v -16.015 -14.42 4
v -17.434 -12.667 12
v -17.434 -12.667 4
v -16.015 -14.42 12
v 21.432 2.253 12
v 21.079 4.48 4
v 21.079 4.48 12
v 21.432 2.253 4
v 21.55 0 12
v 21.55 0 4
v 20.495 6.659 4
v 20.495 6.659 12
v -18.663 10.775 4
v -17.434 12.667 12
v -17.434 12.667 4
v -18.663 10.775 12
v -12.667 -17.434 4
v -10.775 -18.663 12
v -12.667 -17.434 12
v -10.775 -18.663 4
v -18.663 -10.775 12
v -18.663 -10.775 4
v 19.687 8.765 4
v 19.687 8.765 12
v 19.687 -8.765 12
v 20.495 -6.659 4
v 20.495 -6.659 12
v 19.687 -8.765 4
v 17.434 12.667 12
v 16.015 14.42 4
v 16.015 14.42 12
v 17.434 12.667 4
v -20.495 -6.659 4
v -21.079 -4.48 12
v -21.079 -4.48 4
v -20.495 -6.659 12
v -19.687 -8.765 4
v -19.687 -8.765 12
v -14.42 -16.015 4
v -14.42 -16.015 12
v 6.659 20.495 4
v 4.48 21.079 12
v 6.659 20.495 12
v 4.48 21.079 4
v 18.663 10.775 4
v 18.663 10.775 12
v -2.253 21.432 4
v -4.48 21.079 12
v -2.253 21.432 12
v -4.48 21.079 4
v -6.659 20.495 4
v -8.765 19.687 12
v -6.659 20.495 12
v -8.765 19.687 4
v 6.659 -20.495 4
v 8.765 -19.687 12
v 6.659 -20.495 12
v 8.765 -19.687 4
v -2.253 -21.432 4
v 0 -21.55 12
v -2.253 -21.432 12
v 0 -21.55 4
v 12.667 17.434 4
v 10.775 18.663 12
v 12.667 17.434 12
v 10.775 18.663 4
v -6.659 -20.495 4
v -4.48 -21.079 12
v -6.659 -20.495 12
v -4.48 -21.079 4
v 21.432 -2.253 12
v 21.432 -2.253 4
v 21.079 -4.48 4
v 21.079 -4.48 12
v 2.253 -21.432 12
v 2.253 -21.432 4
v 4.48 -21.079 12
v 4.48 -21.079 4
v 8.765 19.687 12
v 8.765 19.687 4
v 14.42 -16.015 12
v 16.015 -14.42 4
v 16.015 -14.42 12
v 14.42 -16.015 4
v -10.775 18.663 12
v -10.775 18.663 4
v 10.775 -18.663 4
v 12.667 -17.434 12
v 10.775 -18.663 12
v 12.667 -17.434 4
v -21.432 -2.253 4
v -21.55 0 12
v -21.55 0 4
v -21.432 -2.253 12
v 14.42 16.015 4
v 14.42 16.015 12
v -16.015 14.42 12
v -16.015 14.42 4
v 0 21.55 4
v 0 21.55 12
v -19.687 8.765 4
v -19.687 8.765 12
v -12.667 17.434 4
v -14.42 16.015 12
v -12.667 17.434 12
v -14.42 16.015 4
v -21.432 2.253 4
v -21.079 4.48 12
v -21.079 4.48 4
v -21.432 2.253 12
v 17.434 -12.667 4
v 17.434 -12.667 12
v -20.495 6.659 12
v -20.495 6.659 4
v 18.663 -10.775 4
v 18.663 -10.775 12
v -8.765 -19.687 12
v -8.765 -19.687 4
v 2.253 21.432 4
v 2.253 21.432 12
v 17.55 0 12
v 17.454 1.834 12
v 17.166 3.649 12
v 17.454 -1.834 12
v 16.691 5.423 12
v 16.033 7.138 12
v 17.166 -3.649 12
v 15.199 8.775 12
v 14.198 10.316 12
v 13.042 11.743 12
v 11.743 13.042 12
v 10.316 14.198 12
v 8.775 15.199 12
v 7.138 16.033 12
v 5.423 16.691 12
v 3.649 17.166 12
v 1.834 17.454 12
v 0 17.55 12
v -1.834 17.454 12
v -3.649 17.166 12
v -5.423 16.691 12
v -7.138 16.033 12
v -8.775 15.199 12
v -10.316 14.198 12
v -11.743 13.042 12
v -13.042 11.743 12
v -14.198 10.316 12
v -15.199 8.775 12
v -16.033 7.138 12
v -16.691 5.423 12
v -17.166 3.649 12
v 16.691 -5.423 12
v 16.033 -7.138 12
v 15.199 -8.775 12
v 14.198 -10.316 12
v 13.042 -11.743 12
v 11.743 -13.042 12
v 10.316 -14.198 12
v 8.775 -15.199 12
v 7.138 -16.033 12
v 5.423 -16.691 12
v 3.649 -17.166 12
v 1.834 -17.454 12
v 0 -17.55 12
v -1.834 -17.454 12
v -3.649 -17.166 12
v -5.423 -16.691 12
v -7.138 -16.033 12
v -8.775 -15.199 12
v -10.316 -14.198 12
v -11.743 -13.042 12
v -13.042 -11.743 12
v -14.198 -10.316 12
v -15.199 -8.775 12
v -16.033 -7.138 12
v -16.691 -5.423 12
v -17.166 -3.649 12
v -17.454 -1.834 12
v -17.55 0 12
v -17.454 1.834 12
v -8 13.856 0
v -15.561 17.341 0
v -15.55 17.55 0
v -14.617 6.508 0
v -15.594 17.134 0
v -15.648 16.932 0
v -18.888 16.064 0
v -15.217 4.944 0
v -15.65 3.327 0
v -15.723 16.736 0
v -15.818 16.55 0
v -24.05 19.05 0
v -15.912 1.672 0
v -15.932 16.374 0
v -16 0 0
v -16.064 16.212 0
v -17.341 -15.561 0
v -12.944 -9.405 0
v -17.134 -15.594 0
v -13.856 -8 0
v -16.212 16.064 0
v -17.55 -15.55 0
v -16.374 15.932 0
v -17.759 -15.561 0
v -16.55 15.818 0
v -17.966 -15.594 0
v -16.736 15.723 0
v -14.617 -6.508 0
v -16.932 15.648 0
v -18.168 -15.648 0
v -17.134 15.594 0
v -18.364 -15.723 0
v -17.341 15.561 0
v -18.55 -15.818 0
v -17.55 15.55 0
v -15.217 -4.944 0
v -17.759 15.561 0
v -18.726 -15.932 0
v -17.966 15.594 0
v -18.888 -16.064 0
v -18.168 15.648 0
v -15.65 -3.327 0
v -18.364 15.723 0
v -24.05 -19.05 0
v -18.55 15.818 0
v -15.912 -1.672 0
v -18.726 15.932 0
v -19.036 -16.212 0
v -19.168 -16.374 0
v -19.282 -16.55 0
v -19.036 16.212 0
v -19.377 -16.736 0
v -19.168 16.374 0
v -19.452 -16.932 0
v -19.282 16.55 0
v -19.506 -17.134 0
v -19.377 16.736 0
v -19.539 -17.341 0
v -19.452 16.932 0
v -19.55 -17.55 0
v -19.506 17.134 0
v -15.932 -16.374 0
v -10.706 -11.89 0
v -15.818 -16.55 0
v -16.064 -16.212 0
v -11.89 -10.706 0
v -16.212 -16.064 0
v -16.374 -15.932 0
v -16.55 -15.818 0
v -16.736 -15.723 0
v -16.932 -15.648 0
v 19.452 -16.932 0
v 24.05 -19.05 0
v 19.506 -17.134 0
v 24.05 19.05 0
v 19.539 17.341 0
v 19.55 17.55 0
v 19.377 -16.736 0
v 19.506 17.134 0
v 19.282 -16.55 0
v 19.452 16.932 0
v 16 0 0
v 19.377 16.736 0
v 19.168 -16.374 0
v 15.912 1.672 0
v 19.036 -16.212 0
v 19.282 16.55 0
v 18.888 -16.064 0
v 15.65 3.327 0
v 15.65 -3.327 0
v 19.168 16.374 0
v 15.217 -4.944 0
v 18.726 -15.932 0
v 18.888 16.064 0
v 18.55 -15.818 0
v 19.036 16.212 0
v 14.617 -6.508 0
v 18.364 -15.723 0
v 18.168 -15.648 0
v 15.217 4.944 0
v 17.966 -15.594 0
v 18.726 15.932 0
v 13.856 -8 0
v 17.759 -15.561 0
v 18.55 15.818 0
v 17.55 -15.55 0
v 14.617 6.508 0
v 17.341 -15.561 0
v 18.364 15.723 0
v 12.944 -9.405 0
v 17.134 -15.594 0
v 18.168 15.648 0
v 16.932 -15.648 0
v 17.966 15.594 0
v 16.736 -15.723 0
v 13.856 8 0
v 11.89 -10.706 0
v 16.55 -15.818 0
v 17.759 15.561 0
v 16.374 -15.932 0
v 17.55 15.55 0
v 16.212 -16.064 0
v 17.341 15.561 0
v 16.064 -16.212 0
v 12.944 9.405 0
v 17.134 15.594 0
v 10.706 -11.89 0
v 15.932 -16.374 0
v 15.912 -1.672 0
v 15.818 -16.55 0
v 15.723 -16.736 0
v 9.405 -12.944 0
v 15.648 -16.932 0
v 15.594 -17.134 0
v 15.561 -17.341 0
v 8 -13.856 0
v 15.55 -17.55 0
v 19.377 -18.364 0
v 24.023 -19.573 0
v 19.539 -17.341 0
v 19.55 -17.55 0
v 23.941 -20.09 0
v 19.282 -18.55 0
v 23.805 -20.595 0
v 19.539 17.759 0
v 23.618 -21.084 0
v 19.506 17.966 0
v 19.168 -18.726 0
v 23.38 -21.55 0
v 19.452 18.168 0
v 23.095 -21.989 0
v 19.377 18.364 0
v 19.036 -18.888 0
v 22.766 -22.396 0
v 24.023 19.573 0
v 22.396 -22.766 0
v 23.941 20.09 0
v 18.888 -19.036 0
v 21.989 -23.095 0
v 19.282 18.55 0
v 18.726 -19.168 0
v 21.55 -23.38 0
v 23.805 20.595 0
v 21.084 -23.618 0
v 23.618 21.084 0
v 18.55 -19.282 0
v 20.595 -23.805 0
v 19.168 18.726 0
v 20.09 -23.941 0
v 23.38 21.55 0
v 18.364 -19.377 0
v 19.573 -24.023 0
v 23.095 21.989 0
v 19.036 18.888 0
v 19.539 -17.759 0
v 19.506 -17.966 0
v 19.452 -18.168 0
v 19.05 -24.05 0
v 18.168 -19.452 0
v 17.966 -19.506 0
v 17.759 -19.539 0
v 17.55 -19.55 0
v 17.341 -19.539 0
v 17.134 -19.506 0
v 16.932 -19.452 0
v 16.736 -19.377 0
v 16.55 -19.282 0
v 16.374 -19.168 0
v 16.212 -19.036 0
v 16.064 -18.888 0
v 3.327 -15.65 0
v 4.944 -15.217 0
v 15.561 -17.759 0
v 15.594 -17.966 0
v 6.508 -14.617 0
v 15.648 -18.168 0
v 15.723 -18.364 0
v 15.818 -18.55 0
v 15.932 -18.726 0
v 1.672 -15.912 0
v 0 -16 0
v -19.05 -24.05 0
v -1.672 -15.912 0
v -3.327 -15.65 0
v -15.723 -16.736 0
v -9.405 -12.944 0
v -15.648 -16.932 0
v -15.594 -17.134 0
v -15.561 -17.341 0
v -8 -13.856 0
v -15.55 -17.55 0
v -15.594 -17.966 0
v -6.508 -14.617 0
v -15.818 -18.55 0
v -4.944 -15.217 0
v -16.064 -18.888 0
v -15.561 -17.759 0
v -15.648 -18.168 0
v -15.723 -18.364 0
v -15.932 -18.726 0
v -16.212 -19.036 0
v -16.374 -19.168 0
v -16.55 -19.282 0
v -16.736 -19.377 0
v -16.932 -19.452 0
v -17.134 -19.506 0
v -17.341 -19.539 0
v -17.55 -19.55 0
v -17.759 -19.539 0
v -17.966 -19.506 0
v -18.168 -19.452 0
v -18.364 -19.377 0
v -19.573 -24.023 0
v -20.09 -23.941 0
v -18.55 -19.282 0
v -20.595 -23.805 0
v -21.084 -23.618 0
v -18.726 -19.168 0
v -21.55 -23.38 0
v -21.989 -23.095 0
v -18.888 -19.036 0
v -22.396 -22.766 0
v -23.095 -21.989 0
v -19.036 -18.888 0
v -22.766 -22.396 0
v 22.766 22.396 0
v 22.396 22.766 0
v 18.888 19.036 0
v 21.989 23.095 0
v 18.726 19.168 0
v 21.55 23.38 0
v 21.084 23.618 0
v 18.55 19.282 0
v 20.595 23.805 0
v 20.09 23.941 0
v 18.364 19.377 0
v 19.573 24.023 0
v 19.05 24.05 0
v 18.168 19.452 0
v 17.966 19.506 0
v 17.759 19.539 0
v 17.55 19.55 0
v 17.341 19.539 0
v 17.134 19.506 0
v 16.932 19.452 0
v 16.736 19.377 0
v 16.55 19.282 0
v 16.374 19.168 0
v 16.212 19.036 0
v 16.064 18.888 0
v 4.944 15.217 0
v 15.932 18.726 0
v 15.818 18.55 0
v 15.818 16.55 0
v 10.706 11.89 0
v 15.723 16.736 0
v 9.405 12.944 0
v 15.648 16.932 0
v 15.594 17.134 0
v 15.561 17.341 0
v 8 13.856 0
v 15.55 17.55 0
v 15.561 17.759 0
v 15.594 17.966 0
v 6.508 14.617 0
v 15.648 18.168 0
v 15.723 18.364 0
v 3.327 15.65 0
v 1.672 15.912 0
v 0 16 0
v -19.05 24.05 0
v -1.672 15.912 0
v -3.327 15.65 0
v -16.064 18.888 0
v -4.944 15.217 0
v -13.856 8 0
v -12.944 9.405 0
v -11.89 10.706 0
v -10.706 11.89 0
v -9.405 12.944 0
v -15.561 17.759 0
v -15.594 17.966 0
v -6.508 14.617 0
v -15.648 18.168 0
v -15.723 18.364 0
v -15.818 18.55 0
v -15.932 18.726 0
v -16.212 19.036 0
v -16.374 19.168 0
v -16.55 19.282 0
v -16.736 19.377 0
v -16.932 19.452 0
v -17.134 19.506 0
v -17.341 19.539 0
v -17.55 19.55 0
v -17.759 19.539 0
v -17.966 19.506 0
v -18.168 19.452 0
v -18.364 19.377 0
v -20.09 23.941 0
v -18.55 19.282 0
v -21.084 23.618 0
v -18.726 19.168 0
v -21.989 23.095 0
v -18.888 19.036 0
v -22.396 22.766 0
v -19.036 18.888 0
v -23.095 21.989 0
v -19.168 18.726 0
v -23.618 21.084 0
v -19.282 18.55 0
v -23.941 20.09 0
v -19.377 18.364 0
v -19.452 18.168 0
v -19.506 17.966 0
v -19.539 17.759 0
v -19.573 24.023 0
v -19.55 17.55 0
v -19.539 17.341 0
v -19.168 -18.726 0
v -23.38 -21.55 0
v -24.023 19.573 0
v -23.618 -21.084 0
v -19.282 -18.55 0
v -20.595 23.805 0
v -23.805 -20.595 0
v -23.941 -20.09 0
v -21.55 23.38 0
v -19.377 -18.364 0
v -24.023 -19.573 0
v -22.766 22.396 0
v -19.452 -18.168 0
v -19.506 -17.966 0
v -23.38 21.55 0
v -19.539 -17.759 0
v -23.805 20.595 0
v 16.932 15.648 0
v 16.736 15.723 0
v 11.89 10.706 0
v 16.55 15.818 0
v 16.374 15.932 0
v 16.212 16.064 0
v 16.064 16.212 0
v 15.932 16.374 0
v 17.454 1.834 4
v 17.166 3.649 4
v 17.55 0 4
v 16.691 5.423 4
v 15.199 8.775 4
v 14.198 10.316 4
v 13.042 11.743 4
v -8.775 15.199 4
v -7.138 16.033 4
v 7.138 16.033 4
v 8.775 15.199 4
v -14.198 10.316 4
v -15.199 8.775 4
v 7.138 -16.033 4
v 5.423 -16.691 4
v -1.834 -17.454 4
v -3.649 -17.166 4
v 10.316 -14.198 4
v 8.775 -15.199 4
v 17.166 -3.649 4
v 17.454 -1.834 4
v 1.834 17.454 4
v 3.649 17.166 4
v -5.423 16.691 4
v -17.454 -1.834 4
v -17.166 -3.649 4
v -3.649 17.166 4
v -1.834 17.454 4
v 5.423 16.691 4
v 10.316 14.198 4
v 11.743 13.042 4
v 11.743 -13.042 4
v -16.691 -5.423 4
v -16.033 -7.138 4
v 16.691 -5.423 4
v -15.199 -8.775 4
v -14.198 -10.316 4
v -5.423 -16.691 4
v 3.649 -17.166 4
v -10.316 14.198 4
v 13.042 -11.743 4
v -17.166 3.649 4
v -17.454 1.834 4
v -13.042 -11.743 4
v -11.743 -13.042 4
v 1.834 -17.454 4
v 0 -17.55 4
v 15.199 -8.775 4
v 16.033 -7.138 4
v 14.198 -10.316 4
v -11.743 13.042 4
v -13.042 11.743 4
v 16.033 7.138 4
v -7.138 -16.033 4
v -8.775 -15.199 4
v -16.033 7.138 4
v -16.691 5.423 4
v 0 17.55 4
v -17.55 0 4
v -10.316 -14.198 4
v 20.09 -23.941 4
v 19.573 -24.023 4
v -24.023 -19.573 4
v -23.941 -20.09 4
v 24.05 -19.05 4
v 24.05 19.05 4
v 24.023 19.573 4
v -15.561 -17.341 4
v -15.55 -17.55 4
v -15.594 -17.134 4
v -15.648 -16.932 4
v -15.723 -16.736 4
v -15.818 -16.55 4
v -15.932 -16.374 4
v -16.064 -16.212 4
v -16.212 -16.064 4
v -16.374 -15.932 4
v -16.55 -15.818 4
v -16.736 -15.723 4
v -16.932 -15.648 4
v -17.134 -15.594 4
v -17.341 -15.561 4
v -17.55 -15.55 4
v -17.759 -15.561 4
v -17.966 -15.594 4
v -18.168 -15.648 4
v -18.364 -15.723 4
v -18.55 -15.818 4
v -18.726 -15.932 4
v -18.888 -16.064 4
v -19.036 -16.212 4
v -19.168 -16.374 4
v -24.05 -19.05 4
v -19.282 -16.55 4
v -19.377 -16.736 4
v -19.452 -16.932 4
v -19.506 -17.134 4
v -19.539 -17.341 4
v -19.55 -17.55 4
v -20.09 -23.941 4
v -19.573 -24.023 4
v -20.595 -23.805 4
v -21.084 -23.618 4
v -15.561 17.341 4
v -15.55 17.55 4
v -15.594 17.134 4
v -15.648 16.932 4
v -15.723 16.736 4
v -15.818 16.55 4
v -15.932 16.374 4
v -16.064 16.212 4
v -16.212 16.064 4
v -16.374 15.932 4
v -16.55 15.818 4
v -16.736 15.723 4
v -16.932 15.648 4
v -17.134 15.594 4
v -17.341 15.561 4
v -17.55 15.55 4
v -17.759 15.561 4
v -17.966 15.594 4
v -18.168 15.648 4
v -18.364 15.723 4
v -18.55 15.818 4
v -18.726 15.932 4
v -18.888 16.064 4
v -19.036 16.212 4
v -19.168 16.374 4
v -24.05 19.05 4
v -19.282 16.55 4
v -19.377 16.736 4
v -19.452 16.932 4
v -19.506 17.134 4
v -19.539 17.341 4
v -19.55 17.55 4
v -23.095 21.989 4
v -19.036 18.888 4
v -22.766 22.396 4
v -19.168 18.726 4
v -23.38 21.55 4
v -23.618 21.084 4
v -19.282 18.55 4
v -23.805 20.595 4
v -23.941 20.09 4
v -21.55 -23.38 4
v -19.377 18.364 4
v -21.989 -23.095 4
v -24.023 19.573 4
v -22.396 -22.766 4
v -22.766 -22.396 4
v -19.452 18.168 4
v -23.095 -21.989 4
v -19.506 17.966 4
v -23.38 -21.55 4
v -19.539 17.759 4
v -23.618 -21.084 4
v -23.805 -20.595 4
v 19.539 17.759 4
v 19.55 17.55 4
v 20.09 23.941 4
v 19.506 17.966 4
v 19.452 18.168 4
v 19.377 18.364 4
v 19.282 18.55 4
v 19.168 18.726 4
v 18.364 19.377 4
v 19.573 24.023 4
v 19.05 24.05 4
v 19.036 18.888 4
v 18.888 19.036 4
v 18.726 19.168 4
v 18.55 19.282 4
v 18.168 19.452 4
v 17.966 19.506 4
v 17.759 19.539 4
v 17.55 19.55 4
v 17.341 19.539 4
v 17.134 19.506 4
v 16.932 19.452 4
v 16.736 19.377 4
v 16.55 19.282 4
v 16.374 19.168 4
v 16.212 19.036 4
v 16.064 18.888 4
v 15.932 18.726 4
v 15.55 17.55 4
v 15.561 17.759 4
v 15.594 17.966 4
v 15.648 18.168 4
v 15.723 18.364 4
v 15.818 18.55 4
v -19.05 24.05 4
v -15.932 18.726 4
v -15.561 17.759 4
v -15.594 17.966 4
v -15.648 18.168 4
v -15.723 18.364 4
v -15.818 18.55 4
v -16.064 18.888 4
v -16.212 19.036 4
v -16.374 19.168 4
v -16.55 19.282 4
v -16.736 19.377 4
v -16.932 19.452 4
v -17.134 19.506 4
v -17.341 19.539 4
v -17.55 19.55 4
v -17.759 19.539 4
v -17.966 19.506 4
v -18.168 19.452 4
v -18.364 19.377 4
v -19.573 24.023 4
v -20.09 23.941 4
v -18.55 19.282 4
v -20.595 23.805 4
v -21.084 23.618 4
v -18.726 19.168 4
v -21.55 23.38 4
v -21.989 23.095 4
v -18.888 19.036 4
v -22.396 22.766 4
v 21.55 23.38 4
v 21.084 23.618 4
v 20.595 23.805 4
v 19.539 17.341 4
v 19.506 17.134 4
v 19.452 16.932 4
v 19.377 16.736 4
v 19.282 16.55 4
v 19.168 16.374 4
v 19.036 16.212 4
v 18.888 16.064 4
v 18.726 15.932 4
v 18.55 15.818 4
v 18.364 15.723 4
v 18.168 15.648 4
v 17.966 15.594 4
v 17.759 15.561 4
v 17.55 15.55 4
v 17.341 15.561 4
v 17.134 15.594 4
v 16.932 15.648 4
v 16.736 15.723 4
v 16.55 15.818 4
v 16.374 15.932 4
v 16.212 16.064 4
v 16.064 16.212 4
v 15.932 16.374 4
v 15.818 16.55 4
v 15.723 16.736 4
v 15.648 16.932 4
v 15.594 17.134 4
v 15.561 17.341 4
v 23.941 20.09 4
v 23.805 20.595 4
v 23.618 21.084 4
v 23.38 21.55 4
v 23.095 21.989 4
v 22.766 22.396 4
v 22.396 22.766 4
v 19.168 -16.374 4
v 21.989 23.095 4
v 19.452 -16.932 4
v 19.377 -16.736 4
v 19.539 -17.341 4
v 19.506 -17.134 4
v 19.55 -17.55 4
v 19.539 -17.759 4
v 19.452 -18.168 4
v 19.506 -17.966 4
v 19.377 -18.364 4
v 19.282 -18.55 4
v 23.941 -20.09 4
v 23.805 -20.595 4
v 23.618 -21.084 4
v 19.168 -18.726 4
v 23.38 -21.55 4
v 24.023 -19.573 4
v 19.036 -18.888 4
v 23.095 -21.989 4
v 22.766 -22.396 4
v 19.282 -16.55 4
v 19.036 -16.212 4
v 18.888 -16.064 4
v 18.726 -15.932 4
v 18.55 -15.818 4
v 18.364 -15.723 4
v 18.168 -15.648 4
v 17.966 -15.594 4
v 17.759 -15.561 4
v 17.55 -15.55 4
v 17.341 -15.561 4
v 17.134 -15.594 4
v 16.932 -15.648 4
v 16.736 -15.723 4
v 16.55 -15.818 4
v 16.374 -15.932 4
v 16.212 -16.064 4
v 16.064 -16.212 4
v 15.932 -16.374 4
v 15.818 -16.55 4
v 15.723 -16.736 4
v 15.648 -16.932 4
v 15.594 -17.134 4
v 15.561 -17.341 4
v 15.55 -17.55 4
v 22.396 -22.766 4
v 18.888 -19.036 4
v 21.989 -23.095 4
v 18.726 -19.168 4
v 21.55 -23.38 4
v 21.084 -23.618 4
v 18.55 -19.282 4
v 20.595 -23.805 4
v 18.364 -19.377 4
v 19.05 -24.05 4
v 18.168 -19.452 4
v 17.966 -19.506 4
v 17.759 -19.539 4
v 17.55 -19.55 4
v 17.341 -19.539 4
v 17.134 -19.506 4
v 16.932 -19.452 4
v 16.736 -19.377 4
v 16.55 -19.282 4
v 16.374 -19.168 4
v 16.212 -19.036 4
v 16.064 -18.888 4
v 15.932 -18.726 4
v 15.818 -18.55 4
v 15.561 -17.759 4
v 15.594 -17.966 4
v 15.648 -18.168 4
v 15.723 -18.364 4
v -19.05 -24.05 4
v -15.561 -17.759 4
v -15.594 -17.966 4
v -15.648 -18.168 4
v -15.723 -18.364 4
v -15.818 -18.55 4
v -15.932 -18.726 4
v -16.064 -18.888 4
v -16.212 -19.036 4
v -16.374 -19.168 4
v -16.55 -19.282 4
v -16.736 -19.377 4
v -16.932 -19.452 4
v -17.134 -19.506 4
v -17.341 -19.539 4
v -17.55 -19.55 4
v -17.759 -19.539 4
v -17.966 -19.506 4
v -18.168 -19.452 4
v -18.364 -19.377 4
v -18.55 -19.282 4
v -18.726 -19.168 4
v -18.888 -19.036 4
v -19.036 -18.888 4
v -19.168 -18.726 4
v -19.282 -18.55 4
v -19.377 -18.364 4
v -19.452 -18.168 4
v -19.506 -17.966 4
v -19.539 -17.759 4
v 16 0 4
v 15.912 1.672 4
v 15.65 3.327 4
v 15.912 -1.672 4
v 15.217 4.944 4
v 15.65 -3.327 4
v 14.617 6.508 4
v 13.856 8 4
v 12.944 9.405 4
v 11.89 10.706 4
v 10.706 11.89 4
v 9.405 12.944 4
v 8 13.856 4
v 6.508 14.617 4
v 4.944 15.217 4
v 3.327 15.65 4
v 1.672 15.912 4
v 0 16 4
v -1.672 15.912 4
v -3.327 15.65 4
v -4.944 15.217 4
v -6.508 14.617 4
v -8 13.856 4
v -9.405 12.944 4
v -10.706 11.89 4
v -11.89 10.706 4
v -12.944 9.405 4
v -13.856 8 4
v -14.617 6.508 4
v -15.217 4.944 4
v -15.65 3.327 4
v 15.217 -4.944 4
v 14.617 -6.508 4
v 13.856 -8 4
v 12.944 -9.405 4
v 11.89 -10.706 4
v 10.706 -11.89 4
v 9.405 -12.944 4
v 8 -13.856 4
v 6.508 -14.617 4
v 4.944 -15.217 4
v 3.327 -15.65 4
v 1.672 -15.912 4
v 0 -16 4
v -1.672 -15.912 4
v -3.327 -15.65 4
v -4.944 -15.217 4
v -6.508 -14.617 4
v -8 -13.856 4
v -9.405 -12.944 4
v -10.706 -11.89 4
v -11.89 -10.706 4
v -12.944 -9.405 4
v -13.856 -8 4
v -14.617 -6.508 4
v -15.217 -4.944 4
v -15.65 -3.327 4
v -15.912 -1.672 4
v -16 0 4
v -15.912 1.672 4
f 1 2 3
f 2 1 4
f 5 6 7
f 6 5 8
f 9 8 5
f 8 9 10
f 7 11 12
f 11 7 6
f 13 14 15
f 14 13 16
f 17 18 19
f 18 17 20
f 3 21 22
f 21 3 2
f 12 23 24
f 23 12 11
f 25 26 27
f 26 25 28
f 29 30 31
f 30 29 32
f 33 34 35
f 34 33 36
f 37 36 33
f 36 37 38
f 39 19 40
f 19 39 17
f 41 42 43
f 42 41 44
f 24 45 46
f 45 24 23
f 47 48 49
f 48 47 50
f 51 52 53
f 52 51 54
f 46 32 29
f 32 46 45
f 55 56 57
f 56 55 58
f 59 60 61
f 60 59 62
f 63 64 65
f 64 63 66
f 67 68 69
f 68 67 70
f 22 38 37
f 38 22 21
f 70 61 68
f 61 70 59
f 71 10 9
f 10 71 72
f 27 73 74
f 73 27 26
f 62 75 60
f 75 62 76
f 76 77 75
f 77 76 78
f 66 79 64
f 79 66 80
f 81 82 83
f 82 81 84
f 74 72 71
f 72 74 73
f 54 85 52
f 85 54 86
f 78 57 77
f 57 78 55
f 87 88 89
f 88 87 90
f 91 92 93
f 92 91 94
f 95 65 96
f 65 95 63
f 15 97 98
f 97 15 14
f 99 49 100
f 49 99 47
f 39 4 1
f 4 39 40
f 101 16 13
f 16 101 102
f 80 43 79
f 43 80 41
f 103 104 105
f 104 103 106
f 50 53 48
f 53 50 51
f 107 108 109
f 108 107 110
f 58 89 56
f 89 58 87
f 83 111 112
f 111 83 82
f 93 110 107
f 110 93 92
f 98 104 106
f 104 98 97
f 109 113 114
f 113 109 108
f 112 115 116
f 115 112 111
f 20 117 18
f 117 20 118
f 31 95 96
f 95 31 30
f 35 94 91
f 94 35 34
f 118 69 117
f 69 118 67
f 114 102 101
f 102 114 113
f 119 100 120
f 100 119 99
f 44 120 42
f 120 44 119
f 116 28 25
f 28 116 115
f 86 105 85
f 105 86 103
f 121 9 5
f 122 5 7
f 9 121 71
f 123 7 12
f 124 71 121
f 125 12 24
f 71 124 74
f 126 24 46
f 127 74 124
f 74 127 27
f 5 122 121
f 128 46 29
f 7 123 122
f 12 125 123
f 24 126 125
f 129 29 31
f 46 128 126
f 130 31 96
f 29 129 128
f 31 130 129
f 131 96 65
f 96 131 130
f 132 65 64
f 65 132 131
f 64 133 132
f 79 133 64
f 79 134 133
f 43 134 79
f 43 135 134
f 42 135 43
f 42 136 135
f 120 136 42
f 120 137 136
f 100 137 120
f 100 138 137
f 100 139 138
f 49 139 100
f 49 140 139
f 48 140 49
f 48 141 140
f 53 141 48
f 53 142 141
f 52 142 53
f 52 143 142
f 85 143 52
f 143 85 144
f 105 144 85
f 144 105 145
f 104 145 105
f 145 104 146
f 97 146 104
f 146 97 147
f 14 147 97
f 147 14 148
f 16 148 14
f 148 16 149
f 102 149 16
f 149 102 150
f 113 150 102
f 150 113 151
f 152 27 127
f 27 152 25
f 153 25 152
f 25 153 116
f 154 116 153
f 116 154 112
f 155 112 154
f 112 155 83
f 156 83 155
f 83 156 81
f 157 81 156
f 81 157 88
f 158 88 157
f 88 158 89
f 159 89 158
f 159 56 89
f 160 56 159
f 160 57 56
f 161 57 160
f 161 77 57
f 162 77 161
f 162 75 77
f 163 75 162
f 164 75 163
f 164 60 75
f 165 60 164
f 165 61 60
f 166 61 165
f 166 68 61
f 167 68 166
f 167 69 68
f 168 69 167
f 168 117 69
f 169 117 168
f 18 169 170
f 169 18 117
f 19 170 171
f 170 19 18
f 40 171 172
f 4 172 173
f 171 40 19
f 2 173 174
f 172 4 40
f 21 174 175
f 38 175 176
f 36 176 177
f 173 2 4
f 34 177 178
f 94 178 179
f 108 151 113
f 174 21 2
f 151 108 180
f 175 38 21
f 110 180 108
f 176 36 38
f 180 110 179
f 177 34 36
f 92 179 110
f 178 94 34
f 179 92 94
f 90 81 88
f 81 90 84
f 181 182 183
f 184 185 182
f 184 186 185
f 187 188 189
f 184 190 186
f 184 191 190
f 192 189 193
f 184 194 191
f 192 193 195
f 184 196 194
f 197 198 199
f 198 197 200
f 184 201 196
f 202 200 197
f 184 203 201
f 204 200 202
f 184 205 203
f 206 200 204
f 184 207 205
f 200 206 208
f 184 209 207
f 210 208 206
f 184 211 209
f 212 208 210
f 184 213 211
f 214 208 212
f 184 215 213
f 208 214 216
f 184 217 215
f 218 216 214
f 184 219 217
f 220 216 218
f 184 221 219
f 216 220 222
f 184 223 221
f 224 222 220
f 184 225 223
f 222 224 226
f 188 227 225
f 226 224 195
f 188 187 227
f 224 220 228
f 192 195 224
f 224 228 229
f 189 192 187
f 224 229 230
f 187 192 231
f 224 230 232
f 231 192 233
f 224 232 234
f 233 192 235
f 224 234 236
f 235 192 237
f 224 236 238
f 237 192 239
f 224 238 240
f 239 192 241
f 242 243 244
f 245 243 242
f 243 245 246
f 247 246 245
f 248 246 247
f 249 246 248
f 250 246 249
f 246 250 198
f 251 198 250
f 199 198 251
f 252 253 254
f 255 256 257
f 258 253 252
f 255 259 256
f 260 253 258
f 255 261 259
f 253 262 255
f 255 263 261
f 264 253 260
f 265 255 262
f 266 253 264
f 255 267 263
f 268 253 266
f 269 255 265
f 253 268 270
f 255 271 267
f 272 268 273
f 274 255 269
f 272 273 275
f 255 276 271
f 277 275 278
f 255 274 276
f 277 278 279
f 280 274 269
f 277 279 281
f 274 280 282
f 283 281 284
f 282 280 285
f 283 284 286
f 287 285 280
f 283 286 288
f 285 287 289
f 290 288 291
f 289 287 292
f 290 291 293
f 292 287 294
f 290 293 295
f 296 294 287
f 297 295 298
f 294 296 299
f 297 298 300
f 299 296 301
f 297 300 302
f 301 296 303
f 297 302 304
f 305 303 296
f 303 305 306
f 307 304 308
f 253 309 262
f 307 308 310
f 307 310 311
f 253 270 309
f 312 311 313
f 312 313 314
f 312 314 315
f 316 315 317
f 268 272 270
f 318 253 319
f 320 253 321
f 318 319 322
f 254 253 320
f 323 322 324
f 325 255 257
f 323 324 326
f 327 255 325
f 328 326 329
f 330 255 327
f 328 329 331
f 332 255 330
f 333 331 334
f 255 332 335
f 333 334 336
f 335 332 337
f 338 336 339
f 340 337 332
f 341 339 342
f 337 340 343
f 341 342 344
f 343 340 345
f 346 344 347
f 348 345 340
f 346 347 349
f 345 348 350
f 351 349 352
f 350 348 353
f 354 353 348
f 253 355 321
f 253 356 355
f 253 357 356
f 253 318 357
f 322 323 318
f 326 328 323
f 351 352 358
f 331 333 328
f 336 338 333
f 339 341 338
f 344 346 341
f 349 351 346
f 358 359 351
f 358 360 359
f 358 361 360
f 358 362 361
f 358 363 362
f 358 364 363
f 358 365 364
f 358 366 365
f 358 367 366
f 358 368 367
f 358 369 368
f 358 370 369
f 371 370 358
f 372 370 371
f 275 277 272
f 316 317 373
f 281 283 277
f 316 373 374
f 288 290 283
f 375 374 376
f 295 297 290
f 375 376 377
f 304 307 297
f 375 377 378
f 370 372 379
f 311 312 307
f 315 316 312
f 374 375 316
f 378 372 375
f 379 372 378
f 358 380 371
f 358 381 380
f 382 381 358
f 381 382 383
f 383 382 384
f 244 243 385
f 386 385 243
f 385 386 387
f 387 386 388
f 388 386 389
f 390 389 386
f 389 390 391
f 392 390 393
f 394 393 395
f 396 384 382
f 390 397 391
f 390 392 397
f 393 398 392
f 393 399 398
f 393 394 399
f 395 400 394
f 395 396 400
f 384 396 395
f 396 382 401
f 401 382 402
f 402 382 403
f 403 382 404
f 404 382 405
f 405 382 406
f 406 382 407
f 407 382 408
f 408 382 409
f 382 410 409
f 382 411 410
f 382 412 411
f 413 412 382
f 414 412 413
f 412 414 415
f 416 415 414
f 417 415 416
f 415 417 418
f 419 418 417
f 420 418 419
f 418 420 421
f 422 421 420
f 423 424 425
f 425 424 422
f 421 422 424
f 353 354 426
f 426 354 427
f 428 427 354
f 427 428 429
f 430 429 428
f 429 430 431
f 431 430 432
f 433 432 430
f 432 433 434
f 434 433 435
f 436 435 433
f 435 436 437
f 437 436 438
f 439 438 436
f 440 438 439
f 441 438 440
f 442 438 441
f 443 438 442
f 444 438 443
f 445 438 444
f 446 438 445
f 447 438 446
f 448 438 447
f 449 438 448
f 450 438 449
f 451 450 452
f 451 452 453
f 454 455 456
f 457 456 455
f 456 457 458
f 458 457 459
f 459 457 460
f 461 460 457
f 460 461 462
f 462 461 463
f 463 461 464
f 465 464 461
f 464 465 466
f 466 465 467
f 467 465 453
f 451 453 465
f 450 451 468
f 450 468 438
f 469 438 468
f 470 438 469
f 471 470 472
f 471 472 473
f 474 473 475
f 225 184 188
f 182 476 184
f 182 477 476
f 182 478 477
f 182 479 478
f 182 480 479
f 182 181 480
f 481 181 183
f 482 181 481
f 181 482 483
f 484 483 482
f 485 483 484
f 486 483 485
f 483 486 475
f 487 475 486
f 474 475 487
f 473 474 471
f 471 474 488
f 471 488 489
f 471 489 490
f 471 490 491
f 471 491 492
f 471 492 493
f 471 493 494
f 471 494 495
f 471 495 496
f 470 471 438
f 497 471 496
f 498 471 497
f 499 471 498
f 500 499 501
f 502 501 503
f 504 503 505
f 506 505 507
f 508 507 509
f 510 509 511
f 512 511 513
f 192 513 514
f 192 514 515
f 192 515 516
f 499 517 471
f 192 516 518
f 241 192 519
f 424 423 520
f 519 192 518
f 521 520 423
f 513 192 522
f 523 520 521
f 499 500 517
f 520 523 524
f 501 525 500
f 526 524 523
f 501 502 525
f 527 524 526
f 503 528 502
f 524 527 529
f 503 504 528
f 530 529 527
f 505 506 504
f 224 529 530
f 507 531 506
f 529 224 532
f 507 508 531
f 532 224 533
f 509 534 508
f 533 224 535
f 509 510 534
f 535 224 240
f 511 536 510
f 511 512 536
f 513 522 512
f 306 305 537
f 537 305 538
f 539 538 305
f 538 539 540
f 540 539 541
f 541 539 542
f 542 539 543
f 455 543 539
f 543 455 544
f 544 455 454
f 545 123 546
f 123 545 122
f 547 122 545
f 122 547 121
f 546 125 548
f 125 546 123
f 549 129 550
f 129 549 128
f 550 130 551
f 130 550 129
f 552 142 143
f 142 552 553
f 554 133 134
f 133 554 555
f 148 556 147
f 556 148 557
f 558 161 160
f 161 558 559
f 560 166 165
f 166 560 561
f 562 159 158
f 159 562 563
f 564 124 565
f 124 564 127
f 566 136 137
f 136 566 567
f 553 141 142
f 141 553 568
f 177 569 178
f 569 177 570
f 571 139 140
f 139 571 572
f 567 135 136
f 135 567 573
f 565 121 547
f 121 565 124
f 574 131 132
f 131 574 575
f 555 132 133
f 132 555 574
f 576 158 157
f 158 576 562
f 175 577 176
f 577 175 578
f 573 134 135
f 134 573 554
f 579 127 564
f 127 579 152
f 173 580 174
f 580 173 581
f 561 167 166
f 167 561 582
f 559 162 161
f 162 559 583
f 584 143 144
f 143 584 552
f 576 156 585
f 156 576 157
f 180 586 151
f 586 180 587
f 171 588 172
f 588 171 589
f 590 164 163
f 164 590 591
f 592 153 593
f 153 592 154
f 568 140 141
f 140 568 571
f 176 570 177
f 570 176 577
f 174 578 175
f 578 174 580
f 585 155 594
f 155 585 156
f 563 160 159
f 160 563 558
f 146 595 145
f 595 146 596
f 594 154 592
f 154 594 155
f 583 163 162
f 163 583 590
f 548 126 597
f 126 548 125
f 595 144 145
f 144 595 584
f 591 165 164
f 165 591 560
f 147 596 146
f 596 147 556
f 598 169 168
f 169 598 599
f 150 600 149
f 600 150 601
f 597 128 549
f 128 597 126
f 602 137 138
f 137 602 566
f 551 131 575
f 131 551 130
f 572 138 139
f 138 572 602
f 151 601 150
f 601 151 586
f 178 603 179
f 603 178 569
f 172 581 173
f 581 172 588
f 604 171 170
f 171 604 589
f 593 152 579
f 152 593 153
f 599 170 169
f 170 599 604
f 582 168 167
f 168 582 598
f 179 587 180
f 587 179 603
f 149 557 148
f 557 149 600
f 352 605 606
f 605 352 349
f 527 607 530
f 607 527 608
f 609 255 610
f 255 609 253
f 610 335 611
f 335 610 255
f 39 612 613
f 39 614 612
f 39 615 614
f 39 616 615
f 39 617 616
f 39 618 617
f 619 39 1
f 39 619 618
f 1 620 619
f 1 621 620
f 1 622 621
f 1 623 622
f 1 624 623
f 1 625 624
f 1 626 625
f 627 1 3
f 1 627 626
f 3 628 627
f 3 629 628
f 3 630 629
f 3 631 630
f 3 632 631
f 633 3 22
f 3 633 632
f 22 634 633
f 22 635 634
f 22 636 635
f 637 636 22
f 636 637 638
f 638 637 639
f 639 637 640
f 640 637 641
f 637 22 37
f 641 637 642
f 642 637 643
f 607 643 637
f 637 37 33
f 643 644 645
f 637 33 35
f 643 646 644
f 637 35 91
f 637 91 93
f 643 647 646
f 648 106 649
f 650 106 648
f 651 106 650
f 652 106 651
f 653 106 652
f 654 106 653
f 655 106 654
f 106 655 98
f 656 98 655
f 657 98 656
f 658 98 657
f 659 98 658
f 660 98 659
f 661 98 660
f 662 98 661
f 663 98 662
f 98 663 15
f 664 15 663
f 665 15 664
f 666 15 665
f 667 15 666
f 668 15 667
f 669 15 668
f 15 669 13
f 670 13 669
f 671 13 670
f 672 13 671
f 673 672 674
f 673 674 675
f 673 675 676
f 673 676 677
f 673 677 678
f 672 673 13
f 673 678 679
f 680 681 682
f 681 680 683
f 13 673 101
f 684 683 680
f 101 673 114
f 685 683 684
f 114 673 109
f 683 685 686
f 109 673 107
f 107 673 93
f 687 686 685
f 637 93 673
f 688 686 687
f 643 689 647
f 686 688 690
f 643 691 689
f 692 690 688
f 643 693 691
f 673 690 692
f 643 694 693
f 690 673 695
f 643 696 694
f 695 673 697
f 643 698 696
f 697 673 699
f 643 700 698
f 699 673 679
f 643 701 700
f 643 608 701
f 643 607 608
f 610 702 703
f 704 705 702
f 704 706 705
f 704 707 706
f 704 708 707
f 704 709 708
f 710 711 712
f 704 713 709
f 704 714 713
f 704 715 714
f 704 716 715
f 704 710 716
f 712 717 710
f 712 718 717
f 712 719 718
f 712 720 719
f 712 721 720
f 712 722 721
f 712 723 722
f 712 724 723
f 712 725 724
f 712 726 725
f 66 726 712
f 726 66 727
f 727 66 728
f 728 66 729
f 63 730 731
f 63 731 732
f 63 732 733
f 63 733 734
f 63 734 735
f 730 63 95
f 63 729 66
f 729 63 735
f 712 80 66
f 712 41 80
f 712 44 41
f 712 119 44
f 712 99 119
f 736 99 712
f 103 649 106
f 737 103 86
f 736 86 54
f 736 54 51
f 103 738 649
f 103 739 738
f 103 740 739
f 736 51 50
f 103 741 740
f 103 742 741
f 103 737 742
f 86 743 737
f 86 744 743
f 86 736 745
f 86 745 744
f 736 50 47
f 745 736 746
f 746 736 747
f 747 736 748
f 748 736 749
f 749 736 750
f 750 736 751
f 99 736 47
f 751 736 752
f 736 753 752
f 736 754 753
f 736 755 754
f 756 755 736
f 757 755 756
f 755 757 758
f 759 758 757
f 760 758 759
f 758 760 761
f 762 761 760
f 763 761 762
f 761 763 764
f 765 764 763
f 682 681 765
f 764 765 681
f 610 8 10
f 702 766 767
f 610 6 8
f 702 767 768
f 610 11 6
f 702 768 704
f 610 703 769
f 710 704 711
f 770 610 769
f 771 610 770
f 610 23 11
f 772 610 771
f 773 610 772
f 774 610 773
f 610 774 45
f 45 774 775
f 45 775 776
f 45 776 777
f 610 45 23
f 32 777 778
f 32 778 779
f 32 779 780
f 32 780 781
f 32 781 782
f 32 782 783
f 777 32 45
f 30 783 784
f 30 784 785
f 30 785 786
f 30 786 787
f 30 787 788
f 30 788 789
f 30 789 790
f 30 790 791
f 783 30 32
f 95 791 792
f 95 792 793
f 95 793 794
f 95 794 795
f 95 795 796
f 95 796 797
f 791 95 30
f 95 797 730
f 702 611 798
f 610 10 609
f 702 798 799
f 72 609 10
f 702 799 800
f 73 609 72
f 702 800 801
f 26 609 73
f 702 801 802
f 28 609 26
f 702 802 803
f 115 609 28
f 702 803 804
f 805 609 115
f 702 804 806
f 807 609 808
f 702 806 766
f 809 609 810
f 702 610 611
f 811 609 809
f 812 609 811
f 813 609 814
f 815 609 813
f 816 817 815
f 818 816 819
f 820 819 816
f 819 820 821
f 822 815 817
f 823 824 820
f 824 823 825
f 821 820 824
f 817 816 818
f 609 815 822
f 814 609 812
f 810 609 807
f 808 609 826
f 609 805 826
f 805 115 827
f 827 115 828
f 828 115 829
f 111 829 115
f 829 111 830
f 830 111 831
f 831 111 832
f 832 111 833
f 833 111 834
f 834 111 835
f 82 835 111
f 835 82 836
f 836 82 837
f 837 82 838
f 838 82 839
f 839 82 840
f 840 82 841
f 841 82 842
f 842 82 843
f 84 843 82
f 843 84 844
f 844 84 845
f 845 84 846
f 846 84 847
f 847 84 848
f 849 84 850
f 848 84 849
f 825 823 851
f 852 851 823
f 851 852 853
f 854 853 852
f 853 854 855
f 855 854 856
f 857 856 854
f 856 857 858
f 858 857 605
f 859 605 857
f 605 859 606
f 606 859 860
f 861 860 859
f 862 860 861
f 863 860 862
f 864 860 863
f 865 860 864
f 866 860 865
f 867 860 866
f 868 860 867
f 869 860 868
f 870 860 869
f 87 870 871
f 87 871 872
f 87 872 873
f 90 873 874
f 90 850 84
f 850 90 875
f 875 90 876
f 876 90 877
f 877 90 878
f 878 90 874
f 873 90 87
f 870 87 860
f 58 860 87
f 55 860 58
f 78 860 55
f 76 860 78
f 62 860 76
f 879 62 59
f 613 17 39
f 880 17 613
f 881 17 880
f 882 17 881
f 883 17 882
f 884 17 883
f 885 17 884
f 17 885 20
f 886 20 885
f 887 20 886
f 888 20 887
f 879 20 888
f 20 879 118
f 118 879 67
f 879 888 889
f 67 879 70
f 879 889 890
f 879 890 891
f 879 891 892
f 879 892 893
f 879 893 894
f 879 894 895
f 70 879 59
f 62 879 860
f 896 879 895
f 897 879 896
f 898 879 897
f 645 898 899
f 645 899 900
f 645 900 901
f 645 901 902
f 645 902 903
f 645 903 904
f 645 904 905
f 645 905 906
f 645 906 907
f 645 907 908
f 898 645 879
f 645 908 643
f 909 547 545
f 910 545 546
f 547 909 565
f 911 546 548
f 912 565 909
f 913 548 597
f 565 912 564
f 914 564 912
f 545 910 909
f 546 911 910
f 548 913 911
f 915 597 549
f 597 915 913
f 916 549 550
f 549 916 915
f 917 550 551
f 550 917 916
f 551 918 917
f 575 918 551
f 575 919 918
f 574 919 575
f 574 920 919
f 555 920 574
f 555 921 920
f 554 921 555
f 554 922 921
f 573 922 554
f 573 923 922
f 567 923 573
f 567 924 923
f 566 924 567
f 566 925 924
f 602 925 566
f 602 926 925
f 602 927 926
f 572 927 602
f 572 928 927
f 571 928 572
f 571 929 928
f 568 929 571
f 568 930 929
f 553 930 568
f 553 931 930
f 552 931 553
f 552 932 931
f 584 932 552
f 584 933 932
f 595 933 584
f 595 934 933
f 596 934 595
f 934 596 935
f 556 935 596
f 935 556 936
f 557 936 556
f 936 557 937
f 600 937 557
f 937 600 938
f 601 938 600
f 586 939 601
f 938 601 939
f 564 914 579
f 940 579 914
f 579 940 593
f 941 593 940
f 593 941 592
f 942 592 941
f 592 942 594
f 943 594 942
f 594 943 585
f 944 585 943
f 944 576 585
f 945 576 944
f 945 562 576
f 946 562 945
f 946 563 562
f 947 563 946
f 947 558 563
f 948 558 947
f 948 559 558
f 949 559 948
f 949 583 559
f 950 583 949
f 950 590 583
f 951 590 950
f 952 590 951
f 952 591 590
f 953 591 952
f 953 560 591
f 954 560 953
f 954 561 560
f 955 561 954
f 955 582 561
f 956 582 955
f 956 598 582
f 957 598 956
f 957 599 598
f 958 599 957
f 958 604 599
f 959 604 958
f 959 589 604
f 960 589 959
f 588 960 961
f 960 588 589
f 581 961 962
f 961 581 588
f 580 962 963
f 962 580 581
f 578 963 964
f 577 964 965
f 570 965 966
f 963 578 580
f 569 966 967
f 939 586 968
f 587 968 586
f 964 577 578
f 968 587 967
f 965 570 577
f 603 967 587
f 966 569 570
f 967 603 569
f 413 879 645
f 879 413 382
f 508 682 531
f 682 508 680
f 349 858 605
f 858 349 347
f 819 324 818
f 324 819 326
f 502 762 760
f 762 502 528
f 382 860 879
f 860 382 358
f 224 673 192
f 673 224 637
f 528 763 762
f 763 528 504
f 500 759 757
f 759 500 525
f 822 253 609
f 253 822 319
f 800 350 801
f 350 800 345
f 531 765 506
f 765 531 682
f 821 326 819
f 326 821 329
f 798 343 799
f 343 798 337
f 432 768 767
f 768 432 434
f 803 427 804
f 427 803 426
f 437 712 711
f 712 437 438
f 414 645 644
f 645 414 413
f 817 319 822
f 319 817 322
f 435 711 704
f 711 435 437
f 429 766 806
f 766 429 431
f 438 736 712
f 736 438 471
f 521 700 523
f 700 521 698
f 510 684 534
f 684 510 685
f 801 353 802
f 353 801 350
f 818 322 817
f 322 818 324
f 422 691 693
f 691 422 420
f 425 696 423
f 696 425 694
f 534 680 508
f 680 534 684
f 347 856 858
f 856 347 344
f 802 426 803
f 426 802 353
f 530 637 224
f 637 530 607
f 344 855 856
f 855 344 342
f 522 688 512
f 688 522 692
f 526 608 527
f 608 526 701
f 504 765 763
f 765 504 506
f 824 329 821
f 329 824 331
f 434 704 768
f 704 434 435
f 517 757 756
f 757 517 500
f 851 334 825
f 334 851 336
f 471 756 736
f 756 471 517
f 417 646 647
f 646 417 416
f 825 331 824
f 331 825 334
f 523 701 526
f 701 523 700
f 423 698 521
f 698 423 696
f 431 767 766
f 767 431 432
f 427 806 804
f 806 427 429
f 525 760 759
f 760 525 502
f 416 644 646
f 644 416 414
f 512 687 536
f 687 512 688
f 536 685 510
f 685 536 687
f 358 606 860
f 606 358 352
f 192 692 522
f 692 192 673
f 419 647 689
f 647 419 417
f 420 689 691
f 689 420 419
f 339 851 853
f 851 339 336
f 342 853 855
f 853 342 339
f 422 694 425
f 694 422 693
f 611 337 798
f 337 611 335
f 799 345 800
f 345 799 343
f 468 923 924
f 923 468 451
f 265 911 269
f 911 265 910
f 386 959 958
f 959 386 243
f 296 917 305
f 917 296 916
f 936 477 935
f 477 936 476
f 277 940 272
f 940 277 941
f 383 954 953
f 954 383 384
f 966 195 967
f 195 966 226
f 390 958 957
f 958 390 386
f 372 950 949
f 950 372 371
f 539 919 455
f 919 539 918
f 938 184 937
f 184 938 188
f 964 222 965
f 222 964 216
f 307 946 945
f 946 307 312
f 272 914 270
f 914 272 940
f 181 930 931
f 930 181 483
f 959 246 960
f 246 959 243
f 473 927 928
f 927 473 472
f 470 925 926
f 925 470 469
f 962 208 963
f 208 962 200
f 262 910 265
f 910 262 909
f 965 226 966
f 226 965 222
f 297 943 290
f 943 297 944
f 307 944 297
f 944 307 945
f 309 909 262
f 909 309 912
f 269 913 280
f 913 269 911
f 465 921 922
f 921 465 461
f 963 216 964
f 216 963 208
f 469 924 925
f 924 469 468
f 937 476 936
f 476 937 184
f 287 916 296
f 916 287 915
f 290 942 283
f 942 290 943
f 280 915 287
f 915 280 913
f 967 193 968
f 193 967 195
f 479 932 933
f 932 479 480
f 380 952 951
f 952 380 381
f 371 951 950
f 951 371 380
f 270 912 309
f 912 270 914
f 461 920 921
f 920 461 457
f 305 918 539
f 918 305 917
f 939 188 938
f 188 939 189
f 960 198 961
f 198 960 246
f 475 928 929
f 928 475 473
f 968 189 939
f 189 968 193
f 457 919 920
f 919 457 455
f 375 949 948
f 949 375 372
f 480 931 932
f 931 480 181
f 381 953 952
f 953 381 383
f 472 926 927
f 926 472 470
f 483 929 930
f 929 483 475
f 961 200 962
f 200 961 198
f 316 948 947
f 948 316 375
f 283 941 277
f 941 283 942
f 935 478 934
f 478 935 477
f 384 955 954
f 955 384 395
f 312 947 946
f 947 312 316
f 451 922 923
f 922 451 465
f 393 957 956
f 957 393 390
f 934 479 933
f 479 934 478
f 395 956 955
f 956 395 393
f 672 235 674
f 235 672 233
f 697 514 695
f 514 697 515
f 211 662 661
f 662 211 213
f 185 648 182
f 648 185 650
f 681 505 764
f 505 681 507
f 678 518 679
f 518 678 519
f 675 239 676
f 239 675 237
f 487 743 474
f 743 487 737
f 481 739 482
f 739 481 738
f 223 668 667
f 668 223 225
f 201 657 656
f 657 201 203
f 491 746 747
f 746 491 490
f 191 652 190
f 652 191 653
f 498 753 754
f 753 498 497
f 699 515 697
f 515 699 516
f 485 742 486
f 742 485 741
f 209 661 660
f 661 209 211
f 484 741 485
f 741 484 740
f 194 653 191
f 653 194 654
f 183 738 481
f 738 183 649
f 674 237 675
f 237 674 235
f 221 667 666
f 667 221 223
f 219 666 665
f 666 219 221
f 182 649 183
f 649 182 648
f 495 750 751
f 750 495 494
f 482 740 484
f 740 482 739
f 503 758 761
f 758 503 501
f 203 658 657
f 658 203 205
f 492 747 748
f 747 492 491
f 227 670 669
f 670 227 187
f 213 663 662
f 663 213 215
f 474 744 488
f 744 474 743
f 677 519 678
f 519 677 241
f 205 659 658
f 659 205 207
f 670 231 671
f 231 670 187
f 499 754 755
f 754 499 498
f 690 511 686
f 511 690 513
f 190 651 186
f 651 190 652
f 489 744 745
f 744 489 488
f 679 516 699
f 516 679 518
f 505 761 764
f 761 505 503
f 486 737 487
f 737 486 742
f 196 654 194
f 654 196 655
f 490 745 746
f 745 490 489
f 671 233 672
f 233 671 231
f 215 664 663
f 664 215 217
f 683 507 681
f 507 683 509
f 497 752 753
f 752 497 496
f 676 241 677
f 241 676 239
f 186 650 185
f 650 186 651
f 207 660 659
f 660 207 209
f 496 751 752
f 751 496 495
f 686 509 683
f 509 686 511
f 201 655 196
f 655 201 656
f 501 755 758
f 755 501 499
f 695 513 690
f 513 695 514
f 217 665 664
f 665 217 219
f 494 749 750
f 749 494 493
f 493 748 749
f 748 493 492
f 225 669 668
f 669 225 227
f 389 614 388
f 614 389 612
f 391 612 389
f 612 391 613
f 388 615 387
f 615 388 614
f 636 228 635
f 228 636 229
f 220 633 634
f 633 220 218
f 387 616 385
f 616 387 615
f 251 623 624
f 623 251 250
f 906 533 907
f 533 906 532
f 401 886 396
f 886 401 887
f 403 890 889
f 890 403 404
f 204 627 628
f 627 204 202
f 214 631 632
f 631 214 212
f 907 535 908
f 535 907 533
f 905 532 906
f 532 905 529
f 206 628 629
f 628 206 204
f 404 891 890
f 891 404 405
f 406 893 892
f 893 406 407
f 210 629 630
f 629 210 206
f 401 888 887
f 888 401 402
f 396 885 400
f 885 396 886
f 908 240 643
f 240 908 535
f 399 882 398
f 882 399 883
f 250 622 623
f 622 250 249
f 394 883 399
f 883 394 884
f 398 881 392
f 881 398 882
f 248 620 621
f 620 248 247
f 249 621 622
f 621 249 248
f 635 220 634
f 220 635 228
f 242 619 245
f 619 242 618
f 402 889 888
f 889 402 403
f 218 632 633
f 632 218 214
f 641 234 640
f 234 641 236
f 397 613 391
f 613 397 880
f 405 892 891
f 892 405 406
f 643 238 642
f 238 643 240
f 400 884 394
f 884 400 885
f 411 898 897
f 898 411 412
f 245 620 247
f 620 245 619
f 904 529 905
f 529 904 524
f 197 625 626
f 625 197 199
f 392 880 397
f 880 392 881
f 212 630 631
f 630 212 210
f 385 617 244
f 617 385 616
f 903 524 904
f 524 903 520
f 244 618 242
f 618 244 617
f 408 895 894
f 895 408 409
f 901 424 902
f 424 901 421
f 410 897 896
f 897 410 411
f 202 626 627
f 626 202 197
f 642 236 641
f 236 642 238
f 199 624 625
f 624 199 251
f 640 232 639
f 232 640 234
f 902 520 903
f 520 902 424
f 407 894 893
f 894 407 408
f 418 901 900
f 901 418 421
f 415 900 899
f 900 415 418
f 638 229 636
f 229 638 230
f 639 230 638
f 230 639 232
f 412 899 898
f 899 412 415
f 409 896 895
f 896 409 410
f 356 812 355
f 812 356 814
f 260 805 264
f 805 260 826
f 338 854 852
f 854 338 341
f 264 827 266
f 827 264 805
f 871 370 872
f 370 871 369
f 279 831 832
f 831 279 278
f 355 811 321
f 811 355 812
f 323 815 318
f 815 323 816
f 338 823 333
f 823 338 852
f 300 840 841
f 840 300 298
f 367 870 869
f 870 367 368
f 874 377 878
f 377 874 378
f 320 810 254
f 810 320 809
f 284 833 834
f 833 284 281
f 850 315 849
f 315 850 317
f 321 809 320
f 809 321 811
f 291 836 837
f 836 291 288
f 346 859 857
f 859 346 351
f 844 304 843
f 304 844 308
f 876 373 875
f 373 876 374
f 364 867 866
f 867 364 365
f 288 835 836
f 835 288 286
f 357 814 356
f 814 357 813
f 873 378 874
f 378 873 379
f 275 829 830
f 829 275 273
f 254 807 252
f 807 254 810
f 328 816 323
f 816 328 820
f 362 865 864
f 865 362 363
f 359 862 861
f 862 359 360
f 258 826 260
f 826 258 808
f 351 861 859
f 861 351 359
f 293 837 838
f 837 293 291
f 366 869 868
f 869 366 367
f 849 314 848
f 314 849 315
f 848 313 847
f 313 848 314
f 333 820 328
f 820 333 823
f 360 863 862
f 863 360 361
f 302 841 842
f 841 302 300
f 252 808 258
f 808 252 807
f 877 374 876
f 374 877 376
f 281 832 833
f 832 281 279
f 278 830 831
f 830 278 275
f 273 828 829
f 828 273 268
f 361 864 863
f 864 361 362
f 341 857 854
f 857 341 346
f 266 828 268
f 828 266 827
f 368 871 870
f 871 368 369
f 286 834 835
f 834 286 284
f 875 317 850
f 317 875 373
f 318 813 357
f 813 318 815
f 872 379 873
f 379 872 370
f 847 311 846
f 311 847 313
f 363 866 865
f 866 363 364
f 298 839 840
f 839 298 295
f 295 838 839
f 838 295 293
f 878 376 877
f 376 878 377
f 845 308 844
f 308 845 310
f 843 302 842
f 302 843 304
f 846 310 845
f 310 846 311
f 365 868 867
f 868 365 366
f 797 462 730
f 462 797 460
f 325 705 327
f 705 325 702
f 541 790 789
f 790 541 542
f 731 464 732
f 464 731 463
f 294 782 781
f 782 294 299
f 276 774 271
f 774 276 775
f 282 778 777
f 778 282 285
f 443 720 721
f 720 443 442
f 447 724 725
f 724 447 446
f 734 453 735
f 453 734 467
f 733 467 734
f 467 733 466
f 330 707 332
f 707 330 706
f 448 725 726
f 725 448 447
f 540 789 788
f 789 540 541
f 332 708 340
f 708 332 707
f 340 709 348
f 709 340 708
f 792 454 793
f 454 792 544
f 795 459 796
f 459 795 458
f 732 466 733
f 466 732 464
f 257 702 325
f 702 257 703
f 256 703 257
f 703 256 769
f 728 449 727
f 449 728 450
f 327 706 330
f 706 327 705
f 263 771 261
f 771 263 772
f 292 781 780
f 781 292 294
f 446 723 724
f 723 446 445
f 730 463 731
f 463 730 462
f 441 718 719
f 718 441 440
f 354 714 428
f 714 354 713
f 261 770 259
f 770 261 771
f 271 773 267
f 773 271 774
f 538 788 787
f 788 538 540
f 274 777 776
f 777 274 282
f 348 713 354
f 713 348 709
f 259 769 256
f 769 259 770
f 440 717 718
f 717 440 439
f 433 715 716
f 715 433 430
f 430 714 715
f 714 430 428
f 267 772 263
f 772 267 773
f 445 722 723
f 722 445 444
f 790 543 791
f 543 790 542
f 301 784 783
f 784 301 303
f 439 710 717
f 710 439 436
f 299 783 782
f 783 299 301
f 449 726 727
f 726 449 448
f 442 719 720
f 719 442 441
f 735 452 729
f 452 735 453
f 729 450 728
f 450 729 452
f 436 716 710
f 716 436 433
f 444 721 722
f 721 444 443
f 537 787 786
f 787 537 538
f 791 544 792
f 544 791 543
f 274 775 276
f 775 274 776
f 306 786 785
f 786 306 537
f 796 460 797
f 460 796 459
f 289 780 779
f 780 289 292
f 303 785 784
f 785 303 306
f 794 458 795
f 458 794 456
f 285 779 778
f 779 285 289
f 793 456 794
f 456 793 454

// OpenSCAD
/* Copyright (C) Peter Ivanov <ivanovp@gmail.com>, 2015 */
/* License: Creative Commons - Attribution - Non-commercial (CC BY-NC) /

// 16005 bearing, h = 8 mm, d = 25 mm, D = 47 mm
// 16003 bearing, h = 8 mm, d = 17 mm, D = 35 mm
/* [Global] */
inner_diameter = 35.1;
inner_diameter2 = 32;
wall_thickness = 4;
outer_diameter = inner_diameter + wall_thickness * 2;
base_width = outer_diameter + 5;
base_height = wall_thickness;
height = base_height + 8;
drill_diameter = 4;
drill_distance = inner_diameter;

$fn = 60;

union()
{
    difference()
    {
        union()
        {
            difference()
            {
                cylinder(d=outer_diameter, h=height);
                cylinder(d=inner_diameter, h=height);
            }
            translate([-base_width / 2, -base_width / 2, 0])
            {
                rounded_cube(base_width, base_width, base_height, 5);
            }
        }
        cylinder(d=inner_diameter2, h=height);
        translate([-drill_distance / 2, drill_distance / 2, 0]) 
        {
            cylinder(d=drill_diameter, h=base_height);
        }
        translate([-drill_distance / 2, -drill_distance / 2, 0]) 
        {
            cylinder(d=drill_diameter, h=base_height);
        }
        translate([drill_distance / 2, -drill_distance / 2, 0]) 
        {
            cylinder(d=drill_diameter, h=base_height);
        }
        translate([drill_distance / 2, drill_distance / 2, 0]) 
        {
            cylinder(d=drill_diameter, h=base_height);
        }
    }
}

module rounded_cube(w, l, h, r)
{
    hull()
    {
     translate([0 + r, 0 + r, 0]) cylinder(r=r, h=h);
     translate([w - r, 0 + r, 0]) cylinder(r=r, h=h);
     translate([w - r, l - r, 0]) cylinder(r=r, h=h);
     translate([0 + r, l - r, 0]) cylinder(r=r, h=h);
    }
}

module hexagon(width, height, baseAngle) 
{
  bwidth = width / 1.75;
  for (angle = [baseAngle, baseAngle + 60, baseAngle + 120]) 
  {
      rotate([0, 0, angle]) cube([bwidth, width, height], true);
  }
}
